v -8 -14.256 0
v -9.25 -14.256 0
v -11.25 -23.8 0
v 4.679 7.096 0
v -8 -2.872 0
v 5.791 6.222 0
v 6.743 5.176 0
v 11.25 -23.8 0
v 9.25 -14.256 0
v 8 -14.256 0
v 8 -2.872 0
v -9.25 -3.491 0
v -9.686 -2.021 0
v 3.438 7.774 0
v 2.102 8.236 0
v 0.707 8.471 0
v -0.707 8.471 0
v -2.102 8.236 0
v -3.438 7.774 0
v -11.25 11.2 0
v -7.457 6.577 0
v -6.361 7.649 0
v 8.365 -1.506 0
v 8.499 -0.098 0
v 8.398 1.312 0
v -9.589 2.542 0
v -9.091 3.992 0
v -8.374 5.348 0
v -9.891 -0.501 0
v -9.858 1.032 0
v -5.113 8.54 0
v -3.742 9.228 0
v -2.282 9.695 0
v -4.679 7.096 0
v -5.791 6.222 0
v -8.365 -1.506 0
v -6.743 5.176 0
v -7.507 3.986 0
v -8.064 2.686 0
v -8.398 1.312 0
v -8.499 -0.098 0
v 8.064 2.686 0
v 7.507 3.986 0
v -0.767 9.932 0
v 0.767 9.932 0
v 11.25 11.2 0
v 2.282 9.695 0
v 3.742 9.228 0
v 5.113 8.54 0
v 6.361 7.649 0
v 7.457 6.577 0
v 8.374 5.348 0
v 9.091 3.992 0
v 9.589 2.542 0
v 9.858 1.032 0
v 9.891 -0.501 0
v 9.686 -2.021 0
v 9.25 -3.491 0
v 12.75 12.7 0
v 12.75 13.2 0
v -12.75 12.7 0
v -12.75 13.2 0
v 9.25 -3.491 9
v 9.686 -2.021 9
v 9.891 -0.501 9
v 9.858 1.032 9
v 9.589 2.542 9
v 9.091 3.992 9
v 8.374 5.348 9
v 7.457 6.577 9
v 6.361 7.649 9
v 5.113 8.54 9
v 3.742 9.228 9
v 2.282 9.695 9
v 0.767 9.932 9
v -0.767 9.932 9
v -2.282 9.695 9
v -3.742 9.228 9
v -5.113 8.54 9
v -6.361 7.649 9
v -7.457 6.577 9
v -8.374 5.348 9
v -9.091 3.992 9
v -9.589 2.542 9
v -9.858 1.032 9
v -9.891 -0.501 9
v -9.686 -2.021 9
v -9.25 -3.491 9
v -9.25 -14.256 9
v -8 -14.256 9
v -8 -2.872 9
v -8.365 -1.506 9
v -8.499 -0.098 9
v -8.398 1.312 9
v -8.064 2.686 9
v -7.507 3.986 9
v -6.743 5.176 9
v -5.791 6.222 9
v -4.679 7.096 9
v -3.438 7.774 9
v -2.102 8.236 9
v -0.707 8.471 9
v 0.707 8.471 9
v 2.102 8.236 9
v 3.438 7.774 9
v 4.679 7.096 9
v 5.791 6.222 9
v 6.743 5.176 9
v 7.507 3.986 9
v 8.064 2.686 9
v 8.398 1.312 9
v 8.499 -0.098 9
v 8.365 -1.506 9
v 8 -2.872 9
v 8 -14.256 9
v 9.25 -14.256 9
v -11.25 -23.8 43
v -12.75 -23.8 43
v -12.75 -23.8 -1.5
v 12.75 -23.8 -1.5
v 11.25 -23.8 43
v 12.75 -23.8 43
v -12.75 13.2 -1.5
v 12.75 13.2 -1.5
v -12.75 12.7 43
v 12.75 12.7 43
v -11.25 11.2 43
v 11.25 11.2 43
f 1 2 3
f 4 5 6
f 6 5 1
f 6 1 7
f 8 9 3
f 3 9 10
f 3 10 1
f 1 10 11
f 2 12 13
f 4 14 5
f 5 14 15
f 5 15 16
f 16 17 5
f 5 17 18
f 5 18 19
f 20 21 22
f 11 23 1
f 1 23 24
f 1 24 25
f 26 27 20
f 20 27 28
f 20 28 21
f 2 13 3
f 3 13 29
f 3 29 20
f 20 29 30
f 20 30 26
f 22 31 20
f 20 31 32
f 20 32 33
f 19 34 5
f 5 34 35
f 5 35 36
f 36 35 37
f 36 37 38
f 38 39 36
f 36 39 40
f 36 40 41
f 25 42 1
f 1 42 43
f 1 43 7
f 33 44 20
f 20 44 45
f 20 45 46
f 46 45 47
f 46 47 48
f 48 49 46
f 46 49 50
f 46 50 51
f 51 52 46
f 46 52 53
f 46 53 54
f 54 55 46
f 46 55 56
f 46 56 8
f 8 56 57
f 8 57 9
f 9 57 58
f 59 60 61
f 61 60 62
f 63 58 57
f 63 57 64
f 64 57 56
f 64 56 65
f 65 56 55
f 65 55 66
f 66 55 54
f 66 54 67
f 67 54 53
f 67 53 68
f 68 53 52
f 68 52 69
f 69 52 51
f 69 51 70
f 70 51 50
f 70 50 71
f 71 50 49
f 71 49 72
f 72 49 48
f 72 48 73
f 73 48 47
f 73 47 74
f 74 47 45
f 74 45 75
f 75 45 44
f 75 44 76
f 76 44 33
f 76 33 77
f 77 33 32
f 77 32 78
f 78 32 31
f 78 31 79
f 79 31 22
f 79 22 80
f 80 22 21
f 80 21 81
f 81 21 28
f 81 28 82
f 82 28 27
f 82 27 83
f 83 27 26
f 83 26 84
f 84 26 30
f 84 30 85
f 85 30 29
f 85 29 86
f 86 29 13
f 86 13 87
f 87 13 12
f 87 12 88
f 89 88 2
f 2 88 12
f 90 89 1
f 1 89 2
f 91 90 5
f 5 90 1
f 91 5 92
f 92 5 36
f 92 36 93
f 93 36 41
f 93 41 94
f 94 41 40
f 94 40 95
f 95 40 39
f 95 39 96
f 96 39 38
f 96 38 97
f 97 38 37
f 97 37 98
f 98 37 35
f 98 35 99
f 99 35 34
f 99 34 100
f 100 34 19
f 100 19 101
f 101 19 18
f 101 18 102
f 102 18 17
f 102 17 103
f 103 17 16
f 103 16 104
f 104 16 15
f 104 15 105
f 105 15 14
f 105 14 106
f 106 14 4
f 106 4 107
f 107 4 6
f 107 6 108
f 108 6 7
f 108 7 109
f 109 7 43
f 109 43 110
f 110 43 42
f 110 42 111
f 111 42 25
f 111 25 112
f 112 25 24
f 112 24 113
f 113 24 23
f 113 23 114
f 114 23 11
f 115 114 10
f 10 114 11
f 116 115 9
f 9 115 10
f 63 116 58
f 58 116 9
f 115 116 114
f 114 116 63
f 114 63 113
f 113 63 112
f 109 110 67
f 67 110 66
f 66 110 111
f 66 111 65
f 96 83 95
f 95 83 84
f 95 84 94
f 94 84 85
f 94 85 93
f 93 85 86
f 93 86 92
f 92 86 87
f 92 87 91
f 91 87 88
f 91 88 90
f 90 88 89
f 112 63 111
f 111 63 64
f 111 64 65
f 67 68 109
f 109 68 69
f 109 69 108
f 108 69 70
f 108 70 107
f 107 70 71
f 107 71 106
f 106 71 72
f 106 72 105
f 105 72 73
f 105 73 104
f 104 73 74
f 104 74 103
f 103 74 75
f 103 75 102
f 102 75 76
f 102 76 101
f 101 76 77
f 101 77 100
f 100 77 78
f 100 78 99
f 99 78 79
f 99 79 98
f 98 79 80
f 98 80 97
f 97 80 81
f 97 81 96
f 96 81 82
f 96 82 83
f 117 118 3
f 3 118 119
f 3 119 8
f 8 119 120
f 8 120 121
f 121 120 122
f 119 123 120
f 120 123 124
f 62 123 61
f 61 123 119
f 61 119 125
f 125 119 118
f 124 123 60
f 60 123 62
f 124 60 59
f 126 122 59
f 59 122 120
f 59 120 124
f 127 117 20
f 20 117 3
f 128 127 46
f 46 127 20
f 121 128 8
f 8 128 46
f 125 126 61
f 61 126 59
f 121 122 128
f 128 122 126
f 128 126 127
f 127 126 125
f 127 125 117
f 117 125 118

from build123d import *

# Parameters (mm, degrees)
BOSS_EXTRUDE1_DEPTH = 9
SKETCH3_W           = 22.5
SKETCH3_H           = 35
BOSS_EXTRUDE2_DEPTH = 1.5
BOSS_EXTRUDE5_DEPTH = 43
BOSS_EXTRUDE6_DEPTH = 1.5


with BuildPart() as part:
    # Sketch1 → Boss-Extrude1 (new body)
    with BuildSketch(Plane.XY):
        with BuildLine():
            Line((8, -2.872281323), (8, -14.255843504))
            Line((8, -14.255843504), (9.25, -14.255843504))
            Line((9.25, -14.255843504), (9.25, -3.491060011))
            ThreePointArc((9.25, -3.491060011), (0, 9.961709327), (-9.25, -3.491060011))
            Line((-9.25, -3.491060011), (-9.25, -14.255843504))
            Line((-9.25, -14.255843504), (-8, -14.255843504))
            Line((-8, -14.255843504), (-8, -2.872281323))
            ThreePointArc((-8, -2.872281323), (0, 8.5), (8, -2.872281323))
        make_face()
    extrude(amount=BOSS_EXTRUDE1_DEPTH)

    # Sketch3 → Boss-Extrude2 (add)
    with BuildSketch(Plane.XY):
        with Locations((0, -6.3)):
            Rectangle(SKETCH3_W, SKETCH3_H)
    extrude(amount=-BOSS_EXTRUDE2_DEPTH)



with BuildPart() as body_2:
    # Sketch9 → Boss-Extrude5 (new body)
    with BuildSketch(Plane.XY):
        Polygon((-12.75, 12.7), (12.75, 12.7), (12.75, -23.8), (11.25, -23.8), (11.25, 11.2), (-11.25, 11.2), (-11.25, -23.8), (-12.75, -23.8), align=None)
    extrude(amount=BOSS_EXTRUDE5_DEPTH)


with BuildPart() as part_1:
    add(part.part)

    add(body_2.part)  # Boss-Extrude6 merges body 2
    # Sketch10 → Boss-Extrude6 (add)
    with BuildSketch(Plane.XY):
        Polygon((-12.75, 13.2), (12.75, 13.2), (12.75, -23.8), (11.25, -23.8), (11.25, 11.2), (-11.25, 11.2), (-11.25, -23.8), (-12.75, -23.8), align=None)
    extrude(amount=-BOSS_EXTRUDE6_DEPTH)


solid = part_1.part
